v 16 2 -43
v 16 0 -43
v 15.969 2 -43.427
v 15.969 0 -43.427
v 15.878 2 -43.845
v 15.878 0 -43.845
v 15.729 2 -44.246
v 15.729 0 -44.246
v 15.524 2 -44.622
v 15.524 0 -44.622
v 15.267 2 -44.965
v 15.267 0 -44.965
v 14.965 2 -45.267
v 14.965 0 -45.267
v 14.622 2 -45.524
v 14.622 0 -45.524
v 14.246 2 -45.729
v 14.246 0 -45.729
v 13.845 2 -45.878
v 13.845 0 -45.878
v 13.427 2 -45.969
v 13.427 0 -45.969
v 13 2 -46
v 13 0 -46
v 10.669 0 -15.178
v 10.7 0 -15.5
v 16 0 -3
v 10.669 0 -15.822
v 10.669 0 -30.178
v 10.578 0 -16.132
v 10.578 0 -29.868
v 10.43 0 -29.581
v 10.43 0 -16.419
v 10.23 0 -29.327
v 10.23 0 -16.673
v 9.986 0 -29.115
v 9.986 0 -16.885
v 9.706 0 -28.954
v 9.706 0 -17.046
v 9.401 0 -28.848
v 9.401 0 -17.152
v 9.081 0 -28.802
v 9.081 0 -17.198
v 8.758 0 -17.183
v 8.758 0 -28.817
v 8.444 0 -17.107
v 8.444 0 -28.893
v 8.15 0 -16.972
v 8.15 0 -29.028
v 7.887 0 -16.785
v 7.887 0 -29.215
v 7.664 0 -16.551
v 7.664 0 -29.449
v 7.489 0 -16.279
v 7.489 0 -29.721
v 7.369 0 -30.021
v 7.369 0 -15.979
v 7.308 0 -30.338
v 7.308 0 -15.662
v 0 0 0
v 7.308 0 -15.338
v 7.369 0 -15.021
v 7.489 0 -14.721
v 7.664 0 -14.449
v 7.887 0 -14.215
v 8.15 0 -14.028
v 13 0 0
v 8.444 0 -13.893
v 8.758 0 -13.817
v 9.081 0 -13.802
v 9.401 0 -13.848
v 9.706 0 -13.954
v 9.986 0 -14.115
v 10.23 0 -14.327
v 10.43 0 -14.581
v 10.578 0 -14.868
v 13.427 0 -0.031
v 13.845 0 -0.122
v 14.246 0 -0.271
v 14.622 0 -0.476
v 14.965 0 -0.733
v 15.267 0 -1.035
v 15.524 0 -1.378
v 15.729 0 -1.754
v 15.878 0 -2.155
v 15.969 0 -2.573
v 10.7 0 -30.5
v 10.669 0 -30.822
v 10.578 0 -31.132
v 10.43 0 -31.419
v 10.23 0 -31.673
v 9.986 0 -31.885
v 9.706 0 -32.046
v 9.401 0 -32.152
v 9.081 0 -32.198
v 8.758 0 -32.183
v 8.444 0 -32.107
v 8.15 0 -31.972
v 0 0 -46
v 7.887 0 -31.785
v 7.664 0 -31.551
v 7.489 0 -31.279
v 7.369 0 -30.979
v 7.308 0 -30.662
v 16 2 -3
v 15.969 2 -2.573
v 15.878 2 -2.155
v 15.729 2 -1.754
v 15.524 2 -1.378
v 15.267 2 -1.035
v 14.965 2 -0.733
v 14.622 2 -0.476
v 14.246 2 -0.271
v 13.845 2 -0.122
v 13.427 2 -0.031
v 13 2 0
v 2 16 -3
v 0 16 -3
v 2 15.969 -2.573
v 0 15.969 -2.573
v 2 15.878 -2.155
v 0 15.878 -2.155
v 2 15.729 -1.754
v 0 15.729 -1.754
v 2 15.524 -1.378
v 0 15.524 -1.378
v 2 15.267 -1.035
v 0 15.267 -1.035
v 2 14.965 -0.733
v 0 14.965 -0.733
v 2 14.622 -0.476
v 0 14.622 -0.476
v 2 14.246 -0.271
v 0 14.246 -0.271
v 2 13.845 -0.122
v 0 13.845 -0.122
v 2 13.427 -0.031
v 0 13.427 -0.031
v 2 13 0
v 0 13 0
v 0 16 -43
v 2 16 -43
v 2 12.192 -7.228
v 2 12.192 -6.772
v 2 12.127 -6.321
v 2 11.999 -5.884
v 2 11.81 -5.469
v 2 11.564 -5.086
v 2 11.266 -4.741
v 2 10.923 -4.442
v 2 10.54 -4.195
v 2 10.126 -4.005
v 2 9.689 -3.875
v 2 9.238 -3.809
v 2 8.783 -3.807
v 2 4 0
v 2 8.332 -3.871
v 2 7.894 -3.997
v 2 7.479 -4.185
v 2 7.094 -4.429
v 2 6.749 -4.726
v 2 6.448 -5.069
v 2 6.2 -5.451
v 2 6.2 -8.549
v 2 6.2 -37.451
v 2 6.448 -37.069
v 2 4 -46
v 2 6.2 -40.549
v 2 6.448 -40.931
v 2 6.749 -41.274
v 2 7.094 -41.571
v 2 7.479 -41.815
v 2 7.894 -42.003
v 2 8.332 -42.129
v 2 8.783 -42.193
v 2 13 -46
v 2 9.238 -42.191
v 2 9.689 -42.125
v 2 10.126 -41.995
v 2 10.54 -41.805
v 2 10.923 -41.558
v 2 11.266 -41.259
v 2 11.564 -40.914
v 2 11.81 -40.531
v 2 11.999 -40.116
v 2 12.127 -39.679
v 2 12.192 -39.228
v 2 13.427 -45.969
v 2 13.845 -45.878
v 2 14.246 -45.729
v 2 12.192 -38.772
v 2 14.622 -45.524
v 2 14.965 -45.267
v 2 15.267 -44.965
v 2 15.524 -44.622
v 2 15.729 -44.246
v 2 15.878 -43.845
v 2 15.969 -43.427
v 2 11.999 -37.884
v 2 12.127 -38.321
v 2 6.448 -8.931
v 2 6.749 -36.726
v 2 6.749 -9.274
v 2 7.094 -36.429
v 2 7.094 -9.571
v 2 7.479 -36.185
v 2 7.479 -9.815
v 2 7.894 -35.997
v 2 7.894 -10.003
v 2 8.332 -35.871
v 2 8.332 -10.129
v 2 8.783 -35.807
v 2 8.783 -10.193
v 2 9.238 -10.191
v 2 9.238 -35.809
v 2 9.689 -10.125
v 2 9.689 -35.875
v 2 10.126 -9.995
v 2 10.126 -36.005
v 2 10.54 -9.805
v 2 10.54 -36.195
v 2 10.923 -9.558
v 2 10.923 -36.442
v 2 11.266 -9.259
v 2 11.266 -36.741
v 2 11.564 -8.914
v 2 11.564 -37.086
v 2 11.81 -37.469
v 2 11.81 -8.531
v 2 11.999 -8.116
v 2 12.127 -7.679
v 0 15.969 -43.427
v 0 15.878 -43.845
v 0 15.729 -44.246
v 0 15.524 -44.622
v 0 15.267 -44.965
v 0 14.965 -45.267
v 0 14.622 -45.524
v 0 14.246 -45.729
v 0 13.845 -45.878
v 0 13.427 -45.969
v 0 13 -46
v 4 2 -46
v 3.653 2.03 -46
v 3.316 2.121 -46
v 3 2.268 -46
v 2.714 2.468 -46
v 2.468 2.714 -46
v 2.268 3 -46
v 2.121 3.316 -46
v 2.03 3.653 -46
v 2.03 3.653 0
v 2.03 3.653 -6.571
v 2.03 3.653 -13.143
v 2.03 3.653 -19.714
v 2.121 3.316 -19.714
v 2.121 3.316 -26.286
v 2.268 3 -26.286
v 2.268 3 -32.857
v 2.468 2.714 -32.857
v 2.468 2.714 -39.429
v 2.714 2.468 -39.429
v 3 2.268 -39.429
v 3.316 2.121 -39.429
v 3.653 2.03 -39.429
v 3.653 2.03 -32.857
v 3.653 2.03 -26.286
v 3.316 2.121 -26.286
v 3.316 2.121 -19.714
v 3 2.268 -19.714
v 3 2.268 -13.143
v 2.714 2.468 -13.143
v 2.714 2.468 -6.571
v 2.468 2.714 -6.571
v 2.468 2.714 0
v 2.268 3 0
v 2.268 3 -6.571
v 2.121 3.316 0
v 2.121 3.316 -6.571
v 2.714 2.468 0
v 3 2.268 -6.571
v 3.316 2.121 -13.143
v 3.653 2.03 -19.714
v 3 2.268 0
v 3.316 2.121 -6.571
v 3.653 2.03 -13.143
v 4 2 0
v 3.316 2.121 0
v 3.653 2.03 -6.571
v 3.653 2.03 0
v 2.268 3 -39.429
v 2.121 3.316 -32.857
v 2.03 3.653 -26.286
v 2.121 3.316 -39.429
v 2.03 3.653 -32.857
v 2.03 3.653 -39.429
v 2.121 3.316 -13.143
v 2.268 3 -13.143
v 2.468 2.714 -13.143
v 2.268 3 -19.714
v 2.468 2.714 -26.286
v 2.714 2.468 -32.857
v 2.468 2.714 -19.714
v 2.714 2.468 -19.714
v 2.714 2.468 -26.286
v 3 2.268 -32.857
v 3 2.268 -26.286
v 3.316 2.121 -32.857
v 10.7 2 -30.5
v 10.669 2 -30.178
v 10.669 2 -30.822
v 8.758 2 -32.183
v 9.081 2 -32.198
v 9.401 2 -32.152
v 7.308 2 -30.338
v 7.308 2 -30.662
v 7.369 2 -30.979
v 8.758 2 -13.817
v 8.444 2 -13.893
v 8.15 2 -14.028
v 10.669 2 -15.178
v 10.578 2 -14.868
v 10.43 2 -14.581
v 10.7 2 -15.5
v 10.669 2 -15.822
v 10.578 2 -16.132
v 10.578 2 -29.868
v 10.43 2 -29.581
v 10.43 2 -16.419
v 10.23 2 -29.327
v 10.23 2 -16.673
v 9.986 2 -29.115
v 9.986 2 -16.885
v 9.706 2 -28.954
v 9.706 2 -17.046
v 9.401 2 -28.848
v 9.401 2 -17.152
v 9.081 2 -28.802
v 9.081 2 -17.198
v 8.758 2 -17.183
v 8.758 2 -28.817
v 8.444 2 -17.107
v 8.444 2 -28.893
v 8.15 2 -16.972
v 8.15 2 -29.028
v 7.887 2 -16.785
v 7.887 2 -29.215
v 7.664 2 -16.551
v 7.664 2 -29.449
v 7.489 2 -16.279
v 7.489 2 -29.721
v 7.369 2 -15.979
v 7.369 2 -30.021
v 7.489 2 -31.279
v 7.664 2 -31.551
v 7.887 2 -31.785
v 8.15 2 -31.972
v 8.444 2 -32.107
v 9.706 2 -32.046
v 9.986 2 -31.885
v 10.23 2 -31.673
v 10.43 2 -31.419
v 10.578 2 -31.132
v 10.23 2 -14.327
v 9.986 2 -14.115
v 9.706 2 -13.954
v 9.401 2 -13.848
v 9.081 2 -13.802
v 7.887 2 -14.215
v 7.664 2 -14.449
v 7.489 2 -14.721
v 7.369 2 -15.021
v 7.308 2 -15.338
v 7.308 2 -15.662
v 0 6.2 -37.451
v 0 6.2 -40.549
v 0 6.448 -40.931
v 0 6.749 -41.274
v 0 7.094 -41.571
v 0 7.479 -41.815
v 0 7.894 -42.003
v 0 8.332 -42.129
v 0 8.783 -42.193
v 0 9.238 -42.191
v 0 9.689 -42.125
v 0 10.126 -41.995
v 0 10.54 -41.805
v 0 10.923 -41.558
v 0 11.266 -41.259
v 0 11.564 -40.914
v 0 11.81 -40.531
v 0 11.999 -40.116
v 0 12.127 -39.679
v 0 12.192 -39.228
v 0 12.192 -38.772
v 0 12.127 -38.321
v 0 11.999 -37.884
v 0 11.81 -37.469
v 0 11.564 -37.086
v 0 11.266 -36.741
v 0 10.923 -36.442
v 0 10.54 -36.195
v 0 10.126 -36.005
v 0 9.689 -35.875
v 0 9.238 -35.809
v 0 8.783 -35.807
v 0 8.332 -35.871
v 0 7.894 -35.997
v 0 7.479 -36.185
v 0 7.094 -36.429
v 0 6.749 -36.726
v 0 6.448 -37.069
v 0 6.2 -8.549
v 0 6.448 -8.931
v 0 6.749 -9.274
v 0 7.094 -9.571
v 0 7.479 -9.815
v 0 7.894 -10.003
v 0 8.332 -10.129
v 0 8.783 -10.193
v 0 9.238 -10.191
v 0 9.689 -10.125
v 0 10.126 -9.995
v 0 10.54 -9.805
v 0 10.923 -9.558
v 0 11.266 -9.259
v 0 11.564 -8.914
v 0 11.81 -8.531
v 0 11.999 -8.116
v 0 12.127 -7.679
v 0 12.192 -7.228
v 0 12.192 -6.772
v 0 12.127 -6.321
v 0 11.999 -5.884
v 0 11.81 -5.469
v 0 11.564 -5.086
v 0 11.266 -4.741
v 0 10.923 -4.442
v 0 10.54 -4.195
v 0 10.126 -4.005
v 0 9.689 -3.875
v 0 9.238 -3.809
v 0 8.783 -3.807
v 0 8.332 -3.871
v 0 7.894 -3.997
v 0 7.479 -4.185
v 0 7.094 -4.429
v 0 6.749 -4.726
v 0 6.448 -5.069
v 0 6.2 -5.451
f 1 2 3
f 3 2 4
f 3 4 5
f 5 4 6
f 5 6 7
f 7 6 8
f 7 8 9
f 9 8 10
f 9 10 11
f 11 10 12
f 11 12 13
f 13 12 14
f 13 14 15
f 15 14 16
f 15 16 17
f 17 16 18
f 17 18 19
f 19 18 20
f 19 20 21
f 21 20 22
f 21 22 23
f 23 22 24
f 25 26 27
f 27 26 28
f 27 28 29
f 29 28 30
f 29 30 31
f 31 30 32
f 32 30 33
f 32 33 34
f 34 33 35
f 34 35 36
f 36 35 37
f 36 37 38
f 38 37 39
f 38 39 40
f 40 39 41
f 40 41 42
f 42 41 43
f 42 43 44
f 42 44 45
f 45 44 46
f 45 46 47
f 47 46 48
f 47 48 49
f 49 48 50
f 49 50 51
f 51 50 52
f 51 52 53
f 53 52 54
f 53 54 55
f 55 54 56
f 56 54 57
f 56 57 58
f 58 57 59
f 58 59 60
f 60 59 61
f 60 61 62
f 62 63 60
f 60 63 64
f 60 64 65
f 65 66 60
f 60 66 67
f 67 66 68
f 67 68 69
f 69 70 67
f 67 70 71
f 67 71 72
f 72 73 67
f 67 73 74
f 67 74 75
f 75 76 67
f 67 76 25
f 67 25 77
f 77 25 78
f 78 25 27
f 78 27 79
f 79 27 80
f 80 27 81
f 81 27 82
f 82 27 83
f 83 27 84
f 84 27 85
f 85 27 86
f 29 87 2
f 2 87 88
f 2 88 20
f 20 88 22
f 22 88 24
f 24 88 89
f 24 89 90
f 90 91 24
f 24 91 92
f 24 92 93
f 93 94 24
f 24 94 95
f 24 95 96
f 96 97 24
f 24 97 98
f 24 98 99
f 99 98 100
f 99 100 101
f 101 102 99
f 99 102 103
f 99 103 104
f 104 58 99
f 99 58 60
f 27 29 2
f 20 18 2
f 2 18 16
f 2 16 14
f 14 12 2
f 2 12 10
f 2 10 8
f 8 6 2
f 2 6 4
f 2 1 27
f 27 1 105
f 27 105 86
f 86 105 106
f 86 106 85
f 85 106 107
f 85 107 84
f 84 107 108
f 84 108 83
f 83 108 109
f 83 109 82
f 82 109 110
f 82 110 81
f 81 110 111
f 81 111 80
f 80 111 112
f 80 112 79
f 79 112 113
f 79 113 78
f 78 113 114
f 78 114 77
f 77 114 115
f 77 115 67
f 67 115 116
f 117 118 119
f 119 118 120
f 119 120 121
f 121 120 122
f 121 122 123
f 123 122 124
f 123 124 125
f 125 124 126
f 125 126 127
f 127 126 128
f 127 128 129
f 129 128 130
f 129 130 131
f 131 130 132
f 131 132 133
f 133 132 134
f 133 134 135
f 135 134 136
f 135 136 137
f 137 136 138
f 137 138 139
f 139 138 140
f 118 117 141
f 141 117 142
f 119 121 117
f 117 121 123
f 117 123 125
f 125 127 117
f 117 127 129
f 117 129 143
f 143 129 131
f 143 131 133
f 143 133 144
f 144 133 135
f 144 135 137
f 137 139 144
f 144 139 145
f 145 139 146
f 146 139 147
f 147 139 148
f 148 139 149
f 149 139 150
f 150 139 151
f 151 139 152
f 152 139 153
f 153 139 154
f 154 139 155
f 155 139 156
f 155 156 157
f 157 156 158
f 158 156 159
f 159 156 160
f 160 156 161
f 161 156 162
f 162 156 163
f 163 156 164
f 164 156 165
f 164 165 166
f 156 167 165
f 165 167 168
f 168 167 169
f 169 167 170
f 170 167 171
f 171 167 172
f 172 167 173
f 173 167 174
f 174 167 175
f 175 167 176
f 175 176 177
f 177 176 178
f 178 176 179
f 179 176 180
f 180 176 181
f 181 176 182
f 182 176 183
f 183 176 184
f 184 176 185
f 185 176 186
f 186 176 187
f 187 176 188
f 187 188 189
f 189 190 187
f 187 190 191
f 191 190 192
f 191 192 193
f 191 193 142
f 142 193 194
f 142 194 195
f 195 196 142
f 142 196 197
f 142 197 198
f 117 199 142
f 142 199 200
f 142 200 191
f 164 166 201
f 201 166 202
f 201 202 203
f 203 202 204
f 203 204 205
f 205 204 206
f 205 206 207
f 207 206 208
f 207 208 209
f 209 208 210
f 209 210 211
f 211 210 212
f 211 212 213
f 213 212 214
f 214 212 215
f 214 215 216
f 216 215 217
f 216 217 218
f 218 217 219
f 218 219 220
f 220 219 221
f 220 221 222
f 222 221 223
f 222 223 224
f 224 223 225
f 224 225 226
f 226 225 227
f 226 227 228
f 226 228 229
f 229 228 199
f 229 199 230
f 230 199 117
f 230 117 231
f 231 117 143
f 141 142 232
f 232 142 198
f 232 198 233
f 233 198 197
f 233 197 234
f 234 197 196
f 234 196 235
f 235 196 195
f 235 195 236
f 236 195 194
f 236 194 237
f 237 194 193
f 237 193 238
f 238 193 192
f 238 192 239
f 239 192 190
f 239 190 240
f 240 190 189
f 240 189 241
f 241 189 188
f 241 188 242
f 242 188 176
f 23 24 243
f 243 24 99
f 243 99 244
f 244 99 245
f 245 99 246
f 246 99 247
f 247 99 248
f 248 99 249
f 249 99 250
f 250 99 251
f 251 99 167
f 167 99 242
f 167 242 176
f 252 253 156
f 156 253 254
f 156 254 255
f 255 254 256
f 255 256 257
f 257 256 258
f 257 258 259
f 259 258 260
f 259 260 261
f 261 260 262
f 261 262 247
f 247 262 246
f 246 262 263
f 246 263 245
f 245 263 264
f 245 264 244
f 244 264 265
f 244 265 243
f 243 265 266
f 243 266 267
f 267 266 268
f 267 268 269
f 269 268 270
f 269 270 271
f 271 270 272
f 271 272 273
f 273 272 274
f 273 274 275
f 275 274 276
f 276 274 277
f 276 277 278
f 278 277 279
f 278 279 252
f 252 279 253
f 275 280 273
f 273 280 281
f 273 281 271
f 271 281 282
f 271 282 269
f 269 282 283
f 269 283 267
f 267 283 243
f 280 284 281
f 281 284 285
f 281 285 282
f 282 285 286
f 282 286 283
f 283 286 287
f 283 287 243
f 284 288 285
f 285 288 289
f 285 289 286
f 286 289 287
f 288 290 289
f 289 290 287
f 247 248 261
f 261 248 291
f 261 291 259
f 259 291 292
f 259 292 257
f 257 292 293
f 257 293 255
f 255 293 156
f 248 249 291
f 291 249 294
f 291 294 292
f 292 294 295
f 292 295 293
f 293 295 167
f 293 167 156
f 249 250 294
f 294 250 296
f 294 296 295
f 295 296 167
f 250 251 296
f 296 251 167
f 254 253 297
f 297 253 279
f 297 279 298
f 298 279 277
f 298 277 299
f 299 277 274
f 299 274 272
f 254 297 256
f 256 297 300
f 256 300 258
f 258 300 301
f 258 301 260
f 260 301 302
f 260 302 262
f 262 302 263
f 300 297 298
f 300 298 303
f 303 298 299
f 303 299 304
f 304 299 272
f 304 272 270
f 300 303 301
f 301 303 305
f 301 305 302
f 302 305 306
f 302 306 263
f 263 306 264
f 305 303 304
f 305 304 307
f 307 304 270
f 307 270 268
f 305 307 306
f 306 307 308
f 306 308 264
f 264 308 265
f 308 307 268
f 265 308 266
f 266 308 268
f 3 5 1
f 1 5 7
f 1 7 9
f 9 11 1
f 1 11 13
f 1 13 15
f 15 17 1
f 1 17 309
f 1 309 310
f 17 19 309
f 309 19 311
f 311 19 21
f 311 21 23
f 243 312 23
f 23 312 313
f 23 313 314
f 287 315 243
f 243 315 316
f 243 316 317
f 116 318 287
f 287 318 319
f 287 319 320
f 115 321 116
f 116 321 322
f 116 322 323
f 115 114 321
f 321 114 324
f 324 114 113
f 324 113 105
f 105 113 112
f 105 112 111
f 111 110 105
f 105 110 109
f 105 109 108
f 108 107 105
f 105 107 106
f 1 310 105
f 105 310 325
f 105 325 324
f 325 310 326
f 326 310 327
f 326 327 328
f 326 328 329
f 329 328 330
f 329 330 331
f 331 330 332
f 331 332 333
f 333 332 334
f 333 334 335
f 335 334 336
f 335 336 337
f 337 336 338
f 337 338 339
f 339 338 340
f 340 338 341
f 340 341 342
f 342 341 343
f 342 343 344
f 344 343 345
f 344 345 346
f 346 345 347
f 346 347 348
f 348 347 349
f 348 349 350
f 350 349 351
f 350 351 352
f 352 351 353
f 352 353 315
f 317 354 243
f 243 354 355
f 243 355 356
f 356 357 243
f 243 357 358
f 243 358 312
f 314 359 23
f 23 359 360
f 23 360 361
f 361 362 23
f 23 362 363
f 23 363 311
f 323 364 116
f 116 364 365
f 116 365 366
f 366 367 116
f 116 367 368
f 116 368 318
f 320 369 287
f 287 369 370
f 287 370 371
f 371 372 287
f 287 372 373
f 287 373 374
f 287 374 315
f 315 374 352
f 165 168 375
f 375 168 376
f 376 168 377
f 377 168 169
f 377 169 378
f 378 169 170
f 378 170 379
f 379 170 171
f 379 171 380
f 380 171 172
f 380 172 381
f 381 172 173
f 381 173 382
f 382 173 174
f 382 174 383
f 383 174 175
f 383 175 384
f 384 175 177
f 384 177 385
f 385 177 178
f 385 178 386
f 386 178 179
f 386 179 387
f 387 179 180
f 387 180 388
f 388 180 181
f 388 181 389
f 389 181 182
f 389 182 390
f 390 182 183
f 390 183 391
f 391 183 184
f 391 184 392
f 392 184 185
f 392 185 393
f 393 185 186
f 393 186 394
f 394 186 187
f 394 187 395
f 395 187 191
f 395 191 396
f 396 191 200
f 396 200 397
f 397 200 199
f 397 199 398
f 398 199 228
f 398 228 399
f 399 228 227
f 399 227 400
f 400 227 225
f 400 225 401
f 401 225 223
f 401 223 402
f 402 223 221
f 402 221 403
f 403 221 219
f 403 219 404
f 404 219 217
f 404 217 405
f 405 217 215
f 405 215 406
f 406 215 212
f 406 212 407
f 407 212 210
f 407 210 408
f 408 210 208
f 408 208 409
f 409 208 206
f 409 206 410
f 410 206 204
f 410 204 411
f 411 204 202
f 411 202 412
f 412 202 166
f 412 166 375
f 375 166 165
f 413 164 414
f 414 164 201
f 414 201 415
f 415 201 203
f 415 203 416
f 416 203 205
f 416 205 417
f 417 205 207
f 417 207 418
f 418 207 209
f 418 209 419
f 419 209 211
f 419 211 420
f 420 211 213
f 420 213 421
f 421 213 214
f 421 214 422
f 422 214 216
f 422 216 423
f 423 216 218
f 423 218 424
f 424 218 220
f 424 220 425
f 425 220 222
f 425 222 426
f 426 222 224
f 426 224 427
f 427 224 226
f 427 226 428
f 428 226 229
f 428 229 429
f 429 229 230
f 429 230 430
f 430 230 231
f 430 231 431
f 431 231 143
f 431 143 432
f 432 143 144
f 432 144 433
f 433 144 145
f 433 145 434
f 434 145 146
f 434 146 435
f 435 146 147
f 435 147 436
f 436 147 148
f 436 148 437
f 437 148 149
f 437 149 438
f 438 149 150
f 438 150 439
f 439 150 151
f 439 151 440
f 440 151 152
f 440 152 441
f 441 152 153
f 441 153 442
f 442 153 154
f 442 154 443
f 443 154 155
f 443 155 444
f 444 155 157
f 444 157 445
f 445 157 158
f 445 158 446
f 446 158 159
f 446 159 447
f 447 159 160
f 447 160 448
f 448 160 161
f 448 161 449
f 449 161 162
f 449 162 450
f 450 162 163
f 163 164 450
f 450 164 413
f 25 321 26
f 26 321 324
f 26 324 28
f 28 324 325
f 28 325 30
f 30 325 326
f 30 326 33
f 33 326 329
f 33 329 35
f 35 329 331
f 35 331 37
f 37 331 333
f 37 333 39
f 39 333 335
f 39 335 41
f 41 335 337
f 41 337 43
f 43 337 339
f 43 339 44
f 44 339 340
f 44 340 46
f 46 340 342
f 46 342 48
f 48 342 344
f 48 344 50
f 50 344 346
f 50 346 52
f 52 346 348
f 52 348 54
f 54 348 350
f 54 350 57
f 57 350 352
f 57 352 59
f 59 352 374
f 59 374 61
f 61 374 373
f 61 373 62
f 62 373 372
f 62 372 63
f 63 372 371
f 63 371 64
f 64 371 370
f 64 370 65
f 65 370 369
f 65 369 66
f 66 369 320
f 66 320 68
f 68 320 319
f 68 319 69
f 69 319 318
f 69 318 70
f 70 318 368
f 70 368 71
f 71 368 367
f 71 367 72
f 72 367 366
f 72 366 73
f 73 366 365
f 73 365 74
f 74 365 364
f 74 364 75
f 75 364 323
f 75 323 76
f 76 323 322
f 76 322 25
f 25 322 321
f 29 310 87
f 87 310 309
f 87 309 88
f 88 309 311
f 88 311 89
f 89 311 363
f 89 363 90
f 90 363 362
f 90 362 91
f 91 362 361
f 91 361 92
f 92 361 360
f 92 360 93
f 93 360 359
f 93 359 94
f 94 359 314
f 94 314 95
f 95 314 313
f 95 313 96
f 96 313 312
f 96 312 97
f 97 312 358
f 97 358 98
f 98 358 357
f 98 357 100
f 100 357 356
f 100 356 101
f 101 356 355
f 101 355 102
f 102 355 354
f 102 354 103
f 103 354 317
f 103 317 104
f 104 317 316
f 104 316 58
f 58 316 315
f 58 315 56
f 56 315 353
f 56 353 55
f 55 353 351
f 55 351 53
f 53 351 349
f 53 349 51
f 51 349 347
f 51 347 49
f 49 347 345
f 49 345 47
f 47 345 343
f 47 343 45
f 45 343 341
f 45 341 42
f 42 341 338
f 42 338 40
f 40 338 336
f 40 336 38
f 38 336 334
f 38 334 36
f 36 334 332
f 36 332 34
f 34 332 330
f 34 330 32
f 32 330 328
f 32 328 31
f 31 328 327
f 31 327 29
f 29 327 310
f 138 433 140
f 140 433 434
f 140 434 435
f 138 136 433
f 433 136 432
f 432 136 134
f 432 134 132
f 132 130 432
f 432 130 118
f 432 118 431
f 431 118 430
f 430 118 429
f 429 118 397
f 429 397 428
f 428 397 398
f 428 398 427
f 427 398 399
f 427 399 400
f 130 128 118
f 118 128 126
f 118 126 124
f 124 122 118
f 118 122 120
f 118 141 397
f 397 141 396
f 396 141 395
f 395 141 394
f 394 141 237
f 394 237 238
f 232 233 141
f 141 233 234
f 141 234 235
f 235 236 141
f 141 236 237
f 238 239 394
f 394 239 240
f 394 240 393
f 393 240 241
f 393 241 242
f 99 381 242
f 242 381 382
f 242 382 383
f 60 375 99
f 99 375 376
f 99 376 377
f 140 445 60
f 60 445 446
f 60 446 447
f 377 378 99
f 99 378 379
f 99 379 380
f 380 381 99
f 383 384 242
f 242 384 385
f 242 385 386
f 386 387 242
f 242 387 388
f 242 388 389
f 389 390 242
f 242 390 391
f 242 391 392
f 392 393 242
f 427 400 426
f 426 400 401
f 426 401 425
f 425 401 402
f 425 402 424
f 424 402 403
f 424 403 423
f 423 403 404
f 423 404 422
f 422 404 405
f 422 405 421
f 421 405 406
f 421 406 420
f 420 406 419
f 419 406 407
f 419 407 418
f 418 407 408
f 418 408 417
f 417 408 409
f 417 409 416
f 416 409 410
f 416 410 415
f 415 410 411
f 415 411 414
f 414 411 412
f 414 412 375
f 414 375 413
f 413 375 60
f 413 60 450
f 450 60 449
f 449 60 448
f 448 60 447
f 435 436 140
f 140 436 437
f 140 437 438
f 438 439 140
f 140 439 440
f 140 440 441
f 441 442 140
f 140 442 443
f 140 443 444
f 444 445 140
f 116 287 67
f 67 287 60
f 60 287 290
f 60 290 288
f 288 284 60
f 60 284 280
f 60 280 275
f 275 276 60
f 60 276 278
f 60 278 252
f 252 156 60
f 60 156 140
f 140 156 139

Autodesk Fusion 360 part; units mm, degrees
sketch "Sketch1" plane through (0, 0, 0) normal (0, 0, 1) x (1, 0, 0)
  line L0 (0, 0) -> (16, 0)
  line L1 (16, 0) -> (16, 2)
  line L2 (16, 2) -> (2, 2)
  line L3 (2, 2) -> (2, 16)
  line L4 (2, 16) -> (0, 16)
  line L5 (0, 16) -> (0, 0)
  dimension "d1" = 16
  dimension "d2" = 16
  dimension "d3" = 2
  dimension "d4" = 2
extrude "Extrude1" add sketch "Sketch1" against normal blind 46
sketch "Sketch2" plane through (0, 2, 0) normal (0, 1, 0) x (-1, 0, 0)
  line L0 (-2, 0) -> (-16, 0)
  line L1 (-16, 0) -> (-16, -46)
  line L2 (-16, -46) -> (-2, -46)
  line L3 (-2, -46) -> (-2, 0)
  line L4 (-9, -46) -> (-9, 0) construction
  line L5 (-16, -23) -> (-2, -23) construction
  circle A0 centre (-9, -15.5) radius 1.7
  circle A1 centre (-9, -30.5) radius 1.7
  dimension "d7" = 3.4
  dimension "d19" = 7.5
extrude "Extrude2" cut sketch "Sketch2" against normal blind 2 contours A0 | A1
sketch "Sketch3" plane through (2, 0, 0) normal (1, 0, 0) x (0, 0, -1)
  line L0 (0, 16) -> (0, 2)
  line L1 (0, 2) -> (46, 2)
  line L2 (46, 2) -> (46, 16)
  line L3 (46, 16) -> (0, 16)
  line L4 (23, 16) -> (23, 2) construction
  line L5 (0, 9) -> (46, 9) construction
  circle A0 centre (7, 9) radius 3.2
  line L6 (0, 12.2) -> (46, 12.2) construction
  line L7 (0, 6.2) -> (46, 6.2) construction
  line L8 (5.4508, 6.2) -> (8.5492, 6.2)
  circle A1 centre (39, 9) radius 3.2
  line L9 (40.5492, 6.2) -> (37.4508, 6.2)
  dimension "d10" = 6.4
  dimension "d11" = 6
  dimension "d12" = 16
extrude "Extrude3" cut sketch "Sketch3" against normal blind 2 contours A0 L8 | A1 L9 picked at (6.9734, 8.1997) picked at (38.4662, 7.5792)
fillet "Fillet1" radius 2 1 edges at (2, 2, -23)
fillet "Fillet2" radius 3 4 edges at (1, 16, -46) (1, 16, 0) (16, 1, 0) (16, 1, -46)
equation "d12 = ( 32 / 2 ) * 1 mm"
equation "d19 = ( 15 / 2 ) * 1 mm"
